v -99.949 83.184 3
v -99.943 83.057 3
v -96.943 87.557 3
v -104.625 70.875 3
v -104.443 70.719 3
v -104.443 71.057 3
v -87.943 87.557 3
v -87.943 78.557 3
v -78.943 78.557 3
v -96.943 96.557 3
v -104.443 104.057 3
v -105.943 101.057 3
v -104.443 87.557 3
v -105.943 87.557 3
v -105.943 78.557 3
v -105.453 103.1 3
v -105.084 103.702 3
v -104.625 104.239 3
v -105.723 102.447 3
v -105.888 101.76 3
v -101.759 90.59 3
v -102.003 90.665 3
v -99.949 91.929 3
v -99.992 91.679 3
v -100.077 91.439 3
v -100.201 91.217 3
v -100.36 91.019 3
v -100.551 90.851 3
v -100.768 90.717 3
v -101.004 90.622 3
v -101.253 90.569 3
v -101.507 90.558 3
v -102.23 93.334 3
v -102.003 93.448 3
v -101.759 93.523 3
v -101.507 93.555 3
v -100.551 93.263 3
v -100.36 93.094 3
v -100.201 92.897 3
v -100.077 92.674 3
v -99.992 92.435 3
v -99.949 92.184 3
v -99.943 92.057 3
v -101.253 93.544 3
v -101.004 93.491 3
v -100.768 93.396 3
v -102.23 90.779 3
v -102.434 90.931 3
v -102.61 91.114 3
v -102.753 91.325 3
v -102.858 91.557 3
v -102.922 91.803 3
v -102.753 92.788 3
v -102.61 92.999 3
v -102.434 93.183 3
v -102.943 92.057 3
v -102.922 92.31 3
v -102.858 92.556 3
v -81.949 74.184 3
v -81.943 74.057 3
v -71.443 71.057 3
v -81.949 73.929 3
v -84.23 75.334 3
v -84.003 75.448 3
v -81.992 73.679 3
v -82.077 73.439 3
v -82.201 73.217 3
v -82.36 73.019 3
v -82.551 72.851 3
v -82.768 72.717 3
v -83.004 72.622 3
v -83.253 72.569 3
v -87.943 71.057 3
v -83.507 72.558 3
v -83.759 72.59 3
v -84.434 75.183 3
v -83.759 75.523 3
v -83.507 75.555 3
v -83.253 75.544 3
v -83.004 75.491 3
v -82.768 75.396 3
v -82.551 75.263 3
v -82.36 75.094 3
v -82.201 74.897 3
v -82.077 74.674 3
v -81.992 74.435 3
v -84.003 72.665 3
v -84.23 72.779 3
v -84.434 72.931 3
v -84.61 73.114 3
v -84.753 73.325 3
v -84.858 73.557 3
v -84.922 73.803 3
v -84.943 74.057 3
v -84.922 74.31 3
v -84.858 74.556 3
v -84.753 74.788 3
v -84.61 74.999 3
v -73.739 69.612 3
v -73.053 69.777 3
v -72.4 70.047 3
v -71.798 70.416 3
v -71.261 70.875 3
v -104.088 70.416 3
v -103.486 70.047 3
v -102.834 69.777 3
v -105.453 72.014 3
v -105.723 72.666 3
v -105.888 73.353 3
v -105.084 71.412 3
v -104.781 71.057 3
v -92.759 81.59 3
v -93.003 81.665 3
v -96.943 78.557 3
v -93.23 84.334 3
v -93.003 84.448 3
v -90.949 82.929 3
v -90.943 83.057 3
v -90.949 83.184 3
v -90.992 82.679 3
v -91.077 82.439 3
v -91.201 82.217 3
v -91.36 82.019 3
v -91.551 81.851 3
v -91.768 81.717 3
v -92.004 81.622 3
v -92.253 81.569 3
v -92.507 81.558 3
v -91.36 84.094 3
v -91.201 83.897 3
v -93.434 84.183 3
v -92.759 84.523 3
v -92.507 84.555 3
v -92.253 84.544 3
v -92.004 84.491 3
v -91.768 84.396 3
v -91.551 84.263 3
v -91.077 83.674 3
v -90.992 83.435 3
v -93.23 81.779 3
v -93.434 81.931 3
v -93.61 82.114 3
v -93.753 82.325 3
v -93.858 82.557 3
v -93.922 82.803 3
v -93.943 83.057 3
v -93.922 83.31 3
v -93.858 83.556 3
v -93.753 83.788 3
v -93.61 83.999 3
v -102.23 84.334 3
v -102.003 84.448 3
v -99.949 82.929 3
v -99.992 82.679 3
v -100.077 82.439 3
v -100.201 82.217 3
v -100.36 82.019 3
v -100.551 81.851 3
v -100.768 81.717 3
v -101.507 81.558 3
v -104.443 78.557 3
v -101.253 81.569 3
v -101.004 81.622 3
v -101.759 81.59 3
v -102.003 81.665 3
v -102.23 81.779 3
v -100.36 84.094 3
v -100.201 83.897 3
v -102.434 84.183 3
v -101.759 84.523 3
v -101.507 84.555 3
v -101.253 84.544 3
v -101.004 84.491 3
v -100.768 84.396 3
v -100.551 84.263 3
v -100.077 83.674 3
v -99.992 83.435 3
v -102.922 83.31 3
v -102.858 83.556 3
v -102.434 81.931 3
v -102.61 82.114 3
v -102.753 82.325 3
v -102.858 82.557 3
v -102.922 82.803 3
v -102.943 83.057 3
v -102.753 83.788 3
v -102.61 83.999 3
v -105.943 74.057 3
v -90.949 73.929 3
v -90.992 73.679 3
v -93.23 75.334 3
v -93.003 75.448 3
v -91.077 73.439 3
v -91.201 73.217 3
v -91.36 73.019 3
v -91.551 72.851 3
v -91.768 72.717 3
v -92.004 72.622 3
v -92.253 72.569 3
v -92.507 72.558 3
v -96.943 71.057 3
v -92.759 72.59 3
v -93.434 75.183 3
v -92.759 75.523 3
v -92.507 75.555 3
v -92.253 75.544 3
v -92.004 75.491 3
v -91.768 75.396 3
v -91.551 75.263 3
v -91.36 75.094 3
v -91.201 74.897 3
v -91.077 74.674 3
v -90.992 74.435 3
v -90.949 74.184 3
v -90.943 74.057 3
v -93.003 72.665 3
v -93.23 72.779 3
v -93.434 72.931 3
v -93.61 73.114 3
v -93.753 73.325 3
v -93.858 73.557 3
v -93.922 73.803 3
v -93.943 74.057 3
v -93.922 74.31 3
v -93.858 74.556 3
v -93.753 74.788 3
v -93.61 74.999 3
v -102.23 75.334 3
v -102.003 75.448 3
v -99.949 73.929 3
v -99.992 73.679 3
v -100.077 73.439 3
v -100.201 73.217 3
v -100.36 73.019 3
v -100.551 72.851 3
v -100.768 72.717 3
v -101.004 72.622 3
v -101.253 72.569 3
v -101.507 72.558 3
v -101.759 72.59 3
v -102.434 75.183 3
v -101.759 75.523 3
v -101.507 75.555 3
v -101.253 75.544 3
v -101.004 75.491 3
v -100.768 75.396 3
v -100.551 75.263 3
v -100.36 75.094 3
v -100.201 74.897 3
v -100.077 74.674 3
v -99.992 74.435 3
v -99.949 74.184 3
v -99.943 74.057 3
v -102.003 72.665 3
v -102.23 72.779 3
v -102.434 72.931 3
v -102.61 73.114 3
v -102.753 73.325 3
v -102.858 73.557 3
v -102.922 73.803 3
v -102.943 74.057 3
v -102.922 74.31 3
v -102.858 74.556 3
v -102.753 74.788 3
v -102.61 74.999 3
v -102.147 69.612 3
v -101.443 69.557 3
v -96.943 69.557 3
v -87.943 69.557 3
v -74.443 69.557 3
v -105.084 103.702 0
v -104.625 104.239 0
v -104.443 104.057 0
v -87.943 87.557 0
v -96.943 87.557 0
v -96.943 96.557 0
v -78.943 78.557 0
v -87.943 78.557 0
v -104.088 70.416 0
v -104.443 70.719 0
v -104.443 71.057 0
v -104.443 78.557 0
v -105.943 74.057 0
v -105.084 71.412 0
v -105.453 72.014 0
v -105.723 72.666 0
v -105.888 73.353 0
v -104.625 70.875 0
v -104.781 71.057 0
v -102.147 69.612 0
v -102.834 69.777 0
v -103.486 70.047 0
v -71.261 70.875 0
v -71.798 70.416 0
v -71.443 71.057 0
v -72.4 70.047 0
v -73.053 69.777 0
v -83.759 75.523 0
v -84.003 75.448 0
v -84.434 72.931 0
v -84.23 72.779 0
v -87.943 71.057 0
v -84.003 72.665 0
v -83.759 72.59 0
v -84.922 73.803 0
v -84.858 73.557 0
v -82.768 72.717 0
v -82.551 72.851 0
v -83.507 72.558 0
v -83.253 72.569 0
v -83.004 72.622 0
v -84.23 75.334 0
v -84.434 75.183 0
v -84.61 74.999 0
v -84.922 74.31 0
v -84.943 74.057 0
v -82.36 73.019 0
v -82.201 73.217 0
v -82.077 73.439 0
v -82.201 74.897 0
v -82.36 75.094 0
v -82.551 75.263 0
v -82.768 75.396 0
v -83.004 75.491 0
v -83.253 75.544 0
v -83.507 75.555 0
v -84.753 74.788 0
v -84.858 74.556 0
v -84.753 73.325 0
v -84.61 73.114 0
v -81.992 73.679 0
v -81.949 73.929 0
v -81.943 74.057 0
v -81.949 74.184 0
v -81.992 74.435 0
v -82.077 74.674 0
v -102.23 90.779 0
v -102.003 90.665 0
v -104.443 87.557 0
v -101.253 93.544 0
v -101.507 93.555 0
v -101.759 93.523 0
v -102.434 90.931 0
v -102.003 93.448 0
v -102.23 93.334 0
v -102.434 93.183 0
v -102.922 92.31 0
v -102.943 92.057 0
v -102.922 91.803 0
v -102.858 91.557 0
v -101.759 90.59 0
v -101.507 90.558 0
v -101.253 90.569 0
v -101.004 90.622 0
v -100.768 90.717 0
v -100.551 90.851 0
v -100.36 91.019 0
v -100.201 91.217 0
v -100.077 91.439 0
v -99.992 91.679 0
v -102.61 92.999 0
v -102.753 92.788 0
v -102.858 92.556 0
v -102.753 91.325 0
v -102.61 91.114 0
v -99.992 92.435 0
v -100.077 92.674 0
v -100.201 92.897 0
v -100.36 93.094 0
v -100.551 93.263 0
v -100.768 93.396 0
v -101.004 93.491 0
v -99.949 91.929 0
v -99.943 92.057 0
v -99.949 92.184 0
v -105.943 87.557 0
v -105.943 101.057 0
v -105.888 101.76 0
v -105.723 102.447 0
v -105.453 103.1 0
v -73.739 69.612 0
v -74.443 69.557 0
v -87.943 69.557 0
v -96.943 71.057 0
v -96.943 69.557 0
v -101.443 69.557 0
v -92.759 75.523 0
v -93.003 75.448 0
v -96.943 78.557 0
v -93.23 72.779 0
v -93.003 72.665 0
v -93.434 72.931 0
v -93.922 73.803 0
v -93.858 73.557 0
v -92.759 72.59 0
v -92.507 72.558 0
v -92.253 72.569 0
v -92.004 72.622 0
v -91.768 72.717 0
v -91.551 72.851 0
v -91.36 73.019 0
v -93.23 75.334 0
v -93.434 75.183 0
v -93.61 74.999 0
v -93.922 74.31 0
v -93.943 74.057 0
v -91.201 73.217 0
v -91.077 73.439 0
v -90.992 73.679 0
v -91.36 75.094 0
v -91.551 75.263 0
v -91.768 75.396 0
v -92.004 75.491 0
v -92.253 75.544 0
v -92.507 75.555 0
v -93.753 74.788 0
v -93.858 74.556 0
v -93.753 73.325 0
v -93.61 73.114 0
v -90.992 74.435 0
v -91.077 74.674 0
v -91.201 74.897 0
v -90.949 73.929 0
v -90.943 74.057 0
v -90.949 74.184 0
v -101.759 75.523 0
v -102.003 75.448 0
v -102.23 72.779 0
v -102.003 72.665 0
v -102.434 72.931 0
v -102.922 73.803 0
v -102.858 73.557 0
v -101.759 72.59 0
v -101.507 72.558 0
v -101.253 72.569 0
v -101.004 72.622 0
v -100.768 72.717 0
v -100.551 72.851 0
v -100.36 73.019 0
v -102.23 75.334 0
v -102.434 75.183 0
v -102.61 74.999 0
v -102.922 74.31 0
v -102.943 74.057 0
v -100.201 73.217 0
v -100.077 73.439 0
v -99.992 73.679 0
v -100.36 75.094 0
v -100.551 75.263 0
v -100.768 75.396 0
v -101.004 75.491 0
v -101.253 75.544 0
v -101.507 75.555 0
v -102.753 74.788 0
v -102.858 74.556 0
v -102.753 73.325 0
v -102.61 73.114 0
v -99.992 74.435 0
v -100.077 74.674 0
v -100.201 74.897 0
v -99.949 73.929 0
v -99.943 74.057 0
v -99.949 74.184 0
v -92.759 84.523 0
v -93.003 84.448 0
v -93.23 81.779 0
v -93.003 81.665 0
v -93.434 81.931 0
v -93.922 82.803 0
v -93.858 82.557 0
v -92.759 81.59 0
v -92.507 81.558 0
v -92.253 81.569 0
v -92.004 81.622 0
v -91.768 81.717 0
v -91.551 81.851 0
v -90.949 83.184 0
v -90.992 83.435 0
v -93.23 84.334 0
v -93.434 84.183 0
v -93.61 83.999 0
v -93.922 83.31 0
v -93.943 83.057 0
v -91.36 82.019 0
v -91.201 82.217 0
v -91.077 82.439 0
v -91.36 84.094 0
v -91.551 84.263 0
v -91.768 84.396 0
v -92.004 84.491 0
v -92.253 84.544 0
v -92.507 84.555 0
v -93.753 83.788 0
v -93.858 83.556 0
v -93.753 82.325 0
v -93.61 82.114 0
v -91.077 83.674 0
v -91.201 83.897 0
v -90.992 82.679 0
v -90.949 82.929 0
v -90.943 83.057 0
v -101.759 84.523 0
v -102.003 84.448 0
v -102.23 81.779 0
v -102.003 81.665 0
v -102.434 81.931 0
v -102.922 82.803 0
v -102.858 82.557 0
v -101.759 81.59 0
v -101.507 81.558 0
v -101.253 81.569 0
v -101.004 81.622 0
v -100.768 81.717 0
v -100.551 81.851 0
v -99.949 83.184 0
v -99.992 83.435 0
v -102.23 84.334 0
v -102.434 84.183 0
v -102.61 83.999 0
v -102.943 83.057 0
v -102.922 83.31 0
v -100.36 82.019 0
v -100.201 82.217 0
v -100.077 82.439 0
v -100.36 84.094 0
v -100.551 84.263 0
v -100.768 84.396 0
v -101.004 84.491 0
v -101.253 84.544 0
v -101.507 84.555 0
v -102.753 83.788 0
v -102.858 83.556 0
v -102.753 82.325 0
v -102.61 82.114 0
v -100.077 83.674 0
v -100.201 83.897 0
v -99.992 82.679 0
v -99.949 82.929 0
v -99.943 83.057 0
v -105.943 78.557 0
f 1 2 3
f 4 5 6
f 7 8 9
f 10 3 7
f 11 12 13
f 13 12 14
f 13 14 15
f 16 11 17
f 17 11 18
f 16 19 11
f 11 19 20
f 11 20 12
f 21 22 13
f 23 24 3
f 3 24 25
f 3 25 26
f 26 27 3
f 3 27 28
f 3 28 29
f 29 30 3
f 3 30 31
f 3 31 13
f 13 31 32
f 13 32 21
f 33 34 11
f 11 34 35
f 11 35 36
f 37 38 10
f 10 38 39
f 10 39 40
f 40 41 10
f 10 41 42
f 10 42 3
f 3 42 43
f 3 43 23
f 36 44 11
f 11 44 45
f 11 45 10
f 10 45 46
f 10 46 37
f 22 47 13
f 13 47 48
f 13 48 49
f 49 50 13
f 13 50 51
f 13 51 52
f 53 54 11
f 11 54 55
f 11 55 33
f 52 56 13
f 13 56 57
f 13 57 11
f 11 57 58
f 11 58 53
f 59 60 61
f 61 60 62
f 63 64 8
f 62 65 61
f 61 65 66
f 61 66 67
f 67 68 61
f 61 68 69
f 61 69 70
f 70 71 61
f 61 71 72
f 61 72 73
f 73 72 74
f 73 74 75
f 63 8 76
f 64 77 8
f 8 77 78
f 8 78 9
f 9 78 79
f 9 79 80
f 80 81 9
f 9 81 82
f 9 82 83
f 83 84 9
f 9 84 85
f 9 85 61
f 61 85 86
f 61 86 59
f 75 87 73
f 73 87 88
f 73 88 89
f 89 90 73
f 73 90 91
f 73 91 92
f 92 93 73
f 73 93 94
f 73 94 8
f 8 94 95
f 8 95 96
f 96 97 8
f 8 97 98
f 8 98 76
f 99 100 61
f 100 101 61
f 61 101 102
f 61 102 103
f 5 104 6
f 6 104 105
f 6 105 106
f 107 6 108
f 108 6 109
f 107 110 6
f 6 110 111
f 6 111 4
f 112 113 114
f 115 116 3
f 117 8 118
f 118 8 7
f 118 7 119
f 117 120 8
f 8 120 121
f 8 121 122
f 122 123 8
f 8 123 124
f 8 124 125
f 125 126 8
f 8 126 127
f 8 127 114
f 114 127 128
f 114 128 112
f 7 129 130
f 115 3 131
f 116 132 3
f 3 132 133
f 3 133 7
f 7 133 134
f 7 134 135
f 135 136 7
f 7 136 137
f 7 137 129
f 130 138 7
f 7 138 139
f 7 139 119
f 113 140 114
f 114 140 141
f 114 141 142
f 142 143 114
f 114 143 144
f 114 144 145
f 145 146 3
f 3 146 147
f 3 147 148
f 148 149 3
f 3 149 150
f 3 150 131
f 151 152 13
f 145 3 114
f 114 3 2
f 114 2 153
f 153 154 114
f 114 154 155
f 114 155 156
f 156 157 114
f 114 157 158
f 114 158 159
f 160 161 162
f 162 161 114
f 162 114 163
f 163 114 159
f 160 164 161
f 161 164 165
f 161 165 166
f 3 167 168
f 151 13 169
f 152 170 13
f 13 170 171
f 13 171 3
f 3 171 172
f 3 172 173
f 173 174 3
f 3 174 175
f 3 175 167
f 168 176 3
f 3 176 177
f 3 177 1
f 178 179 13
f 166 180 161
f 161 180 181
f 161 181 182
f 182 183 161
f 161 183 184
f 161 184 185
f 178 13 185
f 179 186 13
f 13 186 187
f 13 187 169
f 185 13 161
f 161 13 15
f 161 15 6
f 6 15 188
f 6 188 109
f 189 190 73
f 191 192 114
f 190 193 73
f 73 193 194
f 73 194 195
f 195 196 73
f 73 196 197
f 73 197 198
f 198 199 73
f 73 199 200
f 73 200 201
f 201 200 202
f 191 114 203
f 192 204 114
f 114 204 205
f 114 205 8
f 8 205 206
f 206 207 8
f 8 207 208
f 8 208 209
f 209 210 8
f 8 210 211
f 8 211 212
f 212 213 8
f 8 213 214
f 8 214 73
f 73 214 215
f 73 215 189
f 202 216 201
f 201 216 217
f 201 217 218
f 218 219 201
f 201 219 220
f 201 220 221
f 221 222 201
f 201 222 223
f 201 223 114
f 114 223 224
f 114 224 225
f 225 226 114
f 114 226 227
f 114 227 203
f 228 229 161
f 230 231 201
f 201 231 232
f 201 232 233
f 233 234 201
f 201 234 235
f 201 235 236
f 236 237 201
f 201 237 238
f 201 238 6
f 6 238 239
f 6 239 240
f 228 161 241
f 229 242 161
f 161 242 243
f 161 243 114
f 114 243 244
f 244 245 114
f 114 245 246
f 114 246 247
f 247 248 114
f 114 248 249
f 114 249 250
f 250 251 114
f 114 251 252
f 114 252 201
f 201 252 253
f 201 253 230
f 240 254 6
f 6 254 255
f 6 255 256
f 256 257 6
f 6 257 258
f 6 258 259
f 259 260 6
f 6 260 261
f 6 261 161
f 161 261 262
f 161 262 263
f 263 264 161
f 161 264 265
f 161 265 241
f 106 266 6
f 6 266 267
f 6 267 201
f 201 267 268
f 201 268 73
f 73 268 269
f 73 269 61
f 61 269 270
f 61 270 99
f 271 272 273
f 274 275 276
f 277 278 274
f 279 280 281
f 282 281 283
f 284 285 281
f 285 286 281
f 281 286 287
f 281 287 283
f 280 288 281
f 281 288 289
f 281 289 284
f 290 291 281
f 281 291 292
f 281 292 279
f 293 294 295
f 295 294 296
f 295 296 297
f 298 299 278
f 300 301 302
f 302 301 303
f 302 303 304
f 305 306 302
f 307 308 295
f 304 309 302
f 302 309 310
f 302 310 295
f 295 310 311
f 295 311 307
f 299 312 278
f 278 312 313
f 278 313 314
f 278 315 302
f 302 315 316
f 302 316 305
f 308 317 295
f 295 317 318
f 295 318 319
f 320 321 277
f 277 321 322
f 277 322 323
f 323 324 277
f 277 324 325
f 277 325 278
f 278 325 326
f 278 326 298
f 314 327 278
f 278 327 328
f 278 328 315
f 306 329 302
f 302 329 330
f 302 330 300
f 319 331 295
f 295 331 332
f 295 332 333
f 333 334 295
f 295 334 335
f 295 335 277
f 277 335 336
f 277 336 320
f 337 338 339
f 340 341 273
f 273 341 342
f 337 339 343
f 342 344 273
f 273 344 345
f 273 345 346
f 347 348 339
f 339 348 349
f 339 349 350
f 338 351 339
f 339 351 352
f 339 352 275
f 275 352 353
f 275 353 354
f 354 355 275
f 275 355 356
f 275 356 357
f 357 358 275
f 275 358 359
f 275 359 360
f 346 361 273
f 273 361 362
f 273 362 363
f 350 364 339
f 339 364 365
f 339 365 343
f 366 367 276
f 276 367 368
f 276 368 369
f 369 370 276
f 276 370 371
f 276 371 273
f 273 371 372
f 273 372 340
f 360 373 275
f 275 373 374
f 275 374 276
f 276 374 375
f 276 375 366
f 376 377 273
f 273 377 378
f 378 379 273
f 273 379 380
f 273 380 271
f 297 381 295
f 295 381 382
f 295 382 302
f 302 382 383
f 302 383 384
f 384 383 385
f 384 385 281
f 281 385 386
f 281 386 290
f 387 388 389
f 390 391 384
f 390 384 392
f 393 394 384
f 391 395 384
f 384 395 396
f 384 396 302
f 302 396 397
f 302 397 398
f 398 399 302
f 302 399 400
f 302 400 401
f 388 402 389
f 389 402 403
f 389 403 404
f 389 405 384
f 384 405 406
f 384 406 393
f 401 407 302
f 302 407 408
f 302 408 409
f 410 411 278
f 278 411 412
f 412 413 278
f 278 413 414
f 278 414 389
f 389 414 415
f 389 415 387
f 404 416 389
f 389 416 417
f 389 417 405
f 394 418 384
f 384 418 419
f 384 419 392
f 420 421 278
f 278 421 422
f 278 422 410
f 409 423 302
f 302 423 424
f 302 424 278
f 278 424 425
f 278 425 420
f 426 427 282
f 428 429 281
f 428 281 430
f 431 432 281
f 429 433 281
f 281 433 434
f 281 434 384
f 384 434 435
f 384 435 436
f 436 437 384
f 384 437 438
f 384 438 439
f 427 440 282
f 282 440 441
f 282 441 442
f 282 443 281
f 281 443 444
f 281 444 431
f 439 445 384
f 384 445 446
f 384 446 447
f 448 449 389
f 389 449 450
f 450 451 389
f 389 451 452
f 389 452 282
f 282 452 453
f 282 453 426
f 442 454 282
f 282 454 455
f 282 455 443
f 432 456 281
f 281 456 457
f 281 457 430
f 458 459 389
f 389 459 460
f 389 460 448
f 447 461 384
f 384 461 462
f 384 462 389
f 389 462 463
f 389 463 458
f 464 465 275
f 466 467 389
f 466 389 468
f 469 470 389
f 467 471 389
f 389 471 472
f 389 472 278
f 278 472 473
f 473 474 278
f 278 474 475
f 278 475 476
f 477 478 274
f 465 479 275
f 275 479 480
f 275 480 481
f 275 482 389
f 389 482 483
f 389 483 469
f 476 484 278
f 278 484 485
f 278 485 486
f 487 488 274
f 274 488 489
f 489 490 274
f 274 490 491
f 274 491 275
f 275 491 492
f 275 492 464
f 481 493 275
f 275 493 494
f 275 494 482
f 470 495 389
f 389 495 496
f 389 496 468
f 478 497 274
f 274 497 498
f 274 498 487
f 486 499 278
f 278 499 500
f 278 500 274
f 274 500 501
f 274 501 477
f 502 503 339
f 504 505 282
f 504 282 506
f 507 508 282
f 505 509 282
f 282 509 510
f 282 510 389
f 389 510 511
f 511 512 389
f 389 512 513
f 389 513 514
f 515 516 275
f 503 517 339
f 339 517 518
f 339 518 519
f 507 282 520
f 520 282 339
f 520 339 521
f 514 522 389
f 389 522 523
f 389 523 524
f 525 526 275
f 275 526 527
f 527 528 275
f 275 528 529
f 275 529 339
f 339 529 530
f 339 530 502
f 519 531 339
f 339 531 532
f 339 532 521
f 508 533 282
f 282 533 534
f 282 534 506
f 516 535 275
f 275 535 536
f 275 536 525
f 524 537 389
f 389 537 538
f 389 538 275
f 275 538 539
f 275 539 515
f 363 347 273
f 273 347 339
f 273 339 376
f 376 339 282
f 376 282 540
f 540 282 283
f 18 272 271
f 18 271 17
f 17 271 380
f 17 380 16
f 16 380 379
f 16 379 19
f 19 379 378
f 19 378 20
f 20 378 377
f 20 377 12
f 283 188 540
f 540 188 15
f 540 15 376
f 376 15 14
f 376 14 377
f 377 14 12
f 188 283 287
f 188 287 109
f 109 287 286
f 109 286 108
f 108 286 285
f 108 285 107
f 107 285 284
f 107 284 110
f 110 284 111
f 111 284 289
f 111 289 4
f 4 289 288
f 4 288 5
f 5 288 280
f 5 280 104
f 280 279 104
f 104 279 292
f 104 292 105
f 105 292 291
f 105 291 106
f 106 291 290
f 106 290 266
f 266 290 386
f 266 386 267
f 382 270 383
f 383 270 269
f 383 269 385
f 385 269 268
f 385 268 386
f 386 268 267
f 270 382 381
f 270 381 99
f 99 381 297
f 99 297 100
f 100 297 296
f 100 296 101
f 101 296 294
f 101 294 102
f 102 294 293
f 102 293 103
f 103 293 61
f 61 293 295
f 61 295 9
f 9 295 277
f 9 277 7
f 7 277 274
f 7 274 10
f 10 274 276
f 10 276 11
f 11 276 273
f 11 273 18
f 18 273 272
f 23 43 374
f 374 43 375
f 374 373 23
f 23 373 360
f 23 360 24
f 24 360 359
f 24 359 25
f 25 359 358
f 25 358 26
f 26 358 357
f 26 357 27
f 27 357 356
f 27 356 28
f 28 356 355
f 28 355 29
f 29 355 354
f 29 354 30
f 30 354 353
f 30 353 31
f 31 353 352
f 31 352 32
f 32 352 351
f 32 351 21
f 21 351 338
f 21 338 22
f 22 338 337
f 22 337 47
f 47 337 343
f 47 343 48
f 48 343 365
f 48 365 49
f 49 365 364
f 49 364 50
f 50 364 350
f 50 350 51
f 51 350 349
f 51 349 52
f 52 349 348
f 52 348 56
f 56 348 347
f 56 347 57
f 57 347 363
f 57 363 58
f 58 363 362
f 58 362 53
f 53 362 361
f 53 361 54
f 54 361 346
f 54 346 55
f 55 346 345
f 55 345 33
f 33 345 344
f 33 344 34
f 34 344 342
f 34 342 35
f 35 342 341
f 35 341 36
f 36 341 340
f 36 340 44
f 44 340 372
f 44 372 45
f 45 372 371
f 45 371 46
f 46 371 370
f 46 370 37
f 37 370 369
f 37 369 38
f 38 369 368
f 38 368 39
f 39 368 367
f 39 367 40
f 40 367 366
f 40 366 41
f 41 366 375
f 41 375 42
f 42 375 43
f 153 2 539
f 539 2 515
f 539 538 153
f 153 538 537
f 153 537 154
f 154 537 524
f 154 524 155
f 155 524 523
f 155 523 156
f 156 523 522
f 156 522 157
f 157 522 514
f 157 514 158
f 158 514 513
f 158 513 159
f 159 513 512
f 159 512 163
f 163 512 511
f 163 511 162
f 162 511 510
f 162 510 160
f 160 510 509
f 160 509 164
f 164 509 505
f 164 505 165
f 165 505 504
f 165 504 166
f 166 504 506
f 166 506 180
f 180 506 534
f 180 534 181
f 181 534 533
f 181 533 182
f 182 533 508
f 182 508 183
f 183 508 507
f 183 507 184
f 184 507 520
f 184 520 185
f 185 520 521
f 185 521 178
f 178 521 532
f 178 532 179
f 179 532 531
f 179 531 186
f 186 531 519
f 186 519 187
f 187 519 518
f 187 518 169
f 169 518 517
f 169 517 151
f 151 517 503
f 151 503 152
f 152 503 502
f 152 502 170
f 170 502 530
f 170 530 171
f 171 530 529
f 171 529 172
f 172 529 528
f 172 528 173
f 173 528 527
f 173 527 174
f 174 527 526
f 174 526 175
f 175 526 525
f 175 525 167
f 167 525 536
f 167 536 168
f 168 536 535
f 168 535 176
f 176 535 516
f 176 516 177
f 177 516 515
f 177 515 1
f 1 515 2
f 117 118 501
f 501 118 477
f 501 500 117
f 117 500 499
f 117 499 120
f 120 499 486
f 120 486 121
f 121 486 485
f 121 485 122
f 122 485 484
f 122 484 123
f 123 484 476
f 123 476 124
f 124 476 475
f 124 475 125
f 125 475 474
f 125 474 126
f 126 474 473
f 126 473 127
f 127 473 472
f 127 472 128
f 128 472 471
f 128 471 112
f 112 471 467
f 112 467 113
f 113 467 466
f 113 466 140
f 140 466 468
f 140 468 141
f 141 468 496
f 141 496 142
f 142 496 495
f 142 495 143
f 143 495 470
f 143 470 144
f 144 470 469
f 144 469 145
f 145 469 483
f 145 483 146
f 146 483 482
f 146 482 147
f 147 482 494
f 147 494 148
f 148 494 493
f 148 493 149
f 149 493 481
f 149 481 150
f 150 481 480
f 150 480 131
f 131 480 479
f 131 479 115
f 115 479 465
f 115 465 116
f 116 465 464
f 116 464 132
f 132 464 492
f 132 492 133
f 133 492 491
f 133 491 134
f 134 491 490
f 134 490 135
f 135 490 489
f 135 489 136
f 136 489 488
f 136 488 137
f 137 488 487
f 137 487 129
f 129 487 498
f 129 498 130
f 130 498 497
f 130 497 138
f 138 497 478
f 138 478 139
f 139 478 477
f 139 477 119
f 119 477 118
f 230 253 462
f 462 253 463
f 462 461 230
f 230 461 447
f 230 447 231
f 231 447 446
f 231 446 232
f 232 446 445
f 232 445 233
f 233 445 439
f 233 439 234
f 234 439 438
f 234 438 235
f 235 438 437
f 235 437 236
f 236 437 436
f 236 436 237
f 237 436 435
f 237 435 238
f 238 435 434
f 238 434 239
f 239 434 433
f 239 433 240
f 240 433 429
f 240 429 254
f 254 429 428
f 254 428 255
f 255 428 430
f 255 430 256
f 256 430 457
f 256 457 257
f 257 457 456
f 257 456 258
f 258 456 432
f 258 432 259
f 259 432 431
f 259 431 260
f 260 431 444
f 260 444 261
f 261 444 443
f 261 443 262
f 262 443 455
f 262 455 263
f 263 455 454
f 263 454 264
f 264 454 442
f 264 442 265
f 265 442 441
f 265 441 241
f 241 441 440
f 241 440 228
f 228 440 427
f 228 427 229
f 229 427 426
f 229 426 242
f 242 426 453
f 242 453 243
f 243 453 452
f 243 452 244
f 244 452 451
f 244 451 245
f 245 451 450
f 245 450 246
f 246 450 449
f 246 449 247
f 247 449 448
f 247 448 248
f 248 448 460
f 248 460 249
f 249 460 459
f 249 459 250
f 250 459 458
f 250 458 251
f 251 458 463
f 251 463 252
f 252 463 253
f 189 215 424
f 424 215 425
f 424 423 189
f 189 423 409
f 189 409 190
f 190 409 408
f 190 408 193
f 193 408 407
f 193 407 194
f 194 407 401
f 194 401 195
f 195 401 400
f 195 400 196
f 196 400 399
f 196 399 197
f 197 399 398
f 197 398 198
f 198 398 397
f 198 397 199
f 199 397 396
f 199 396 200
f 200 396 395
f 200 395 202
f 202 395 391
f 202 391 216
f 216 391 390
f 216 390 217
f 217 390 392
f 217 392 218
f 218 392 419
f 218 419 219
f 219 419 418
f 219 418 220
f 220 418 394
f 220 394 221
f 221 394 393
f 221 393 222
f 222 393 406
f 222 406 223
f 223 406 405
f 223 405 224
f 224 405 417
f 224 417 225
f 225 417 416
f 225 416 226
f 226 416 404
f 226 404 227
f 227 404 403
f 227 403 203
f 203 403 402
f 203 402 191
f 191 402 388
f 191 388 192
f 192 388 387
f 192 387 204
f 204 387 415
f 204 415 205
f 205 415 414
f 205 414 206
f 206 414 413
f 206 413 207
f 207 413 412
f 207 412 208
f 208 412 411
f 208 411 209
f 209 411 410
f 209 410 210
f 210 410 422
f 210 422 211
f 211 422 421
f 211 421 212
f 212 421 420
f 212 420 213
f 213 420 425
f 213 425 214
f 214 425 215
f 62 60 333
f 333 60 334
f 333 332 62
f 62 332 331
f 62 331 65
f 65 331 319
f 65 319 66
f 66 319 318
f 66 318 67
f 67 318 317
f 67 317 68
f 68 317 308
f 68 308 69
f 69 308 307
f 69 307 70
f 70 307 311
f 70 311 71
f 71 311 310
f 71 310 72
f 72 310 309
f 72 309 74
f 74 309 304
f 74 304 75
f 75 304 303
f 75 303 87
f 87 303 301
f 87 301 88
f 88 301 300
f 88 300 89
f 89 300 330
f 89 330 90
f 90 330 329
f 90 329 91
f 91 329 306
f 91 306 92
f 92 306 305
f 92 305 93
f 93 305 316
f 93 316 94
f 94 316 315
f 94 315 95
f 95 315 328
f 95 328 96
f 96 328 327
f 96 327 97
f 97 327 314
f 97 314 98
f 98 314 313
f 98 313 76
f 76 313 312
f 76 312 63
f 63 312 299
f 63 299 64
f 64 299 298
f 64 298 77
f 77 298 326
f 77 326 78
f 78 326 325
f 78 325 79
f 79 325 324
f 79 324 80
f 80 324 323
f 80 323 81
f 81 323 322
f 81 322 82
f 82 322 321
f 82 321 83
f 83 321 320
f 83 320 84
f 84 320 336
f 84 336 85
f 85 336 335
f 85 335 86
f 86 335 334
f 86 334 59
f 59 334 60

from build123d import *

# Parameters (mm, degrees)
MODEL_R                 = 1.5
SALIENTE_EXTRUIR1_DEPTH = 3


with BuildPart() as part:
    # Model → Saliente-Extruir1 (new body)
    with BuildSketch(Plane.XY):
        with BuildLine():
            Line((-105.943383637, 101.056539338), (-105.943383637, 74.056539338))
            ThreePointArc((-105.943383637, 74.056539338), (-104.625364152, 70.874558823), (-101.443383637, 69.556539338))
            Line((-101.443383637, 69.556539338), (-74.443383637, 69.556539338))
            ThreePointArc((-74.443383637, 69.556539338), (-72.721308191, 69.899081442), (-71.261403122, 70.874558823))
            Line((-71.261403122, 70.874558823), (-104.625364152, 104.238519853))
            ThreePointArc((-104.625364152, 104.238519853), (-105.600841533, 102.778614784), (-105.943383637, 101.056539338))
        make_face()
        with Locations((-101.443383637, 92.056539338)):
            Circle(MODEL_R, mode=Mode.SUBTRACT)
        with Locations((-101.443383637, 83.056539338)):
            Circle(MODEL_R, mode=Mode.SUBTRACT)
        with Locations((-92.443383637, 83.056539338)):
            Circle(MODEL_R, mode=Mode.SUBTRACT)
        with Locations((-101.443383637, 74.056539338)):
            Circle(MODEL_R, mode=Mode.SUBTRACT)
        with Locations((-92.443383637, 74.056539338)):
            Circle(MODEL_R, mode=Mode.SUBTRACT)
        with Locations((-83.443383637, 74.056539338)):
            Circle(MODEL_R, mode=Mode.SUBTRACT)
    extrude(amount=SALIENTE_EXTRUIR1_DEPTH)


solid = part.part
